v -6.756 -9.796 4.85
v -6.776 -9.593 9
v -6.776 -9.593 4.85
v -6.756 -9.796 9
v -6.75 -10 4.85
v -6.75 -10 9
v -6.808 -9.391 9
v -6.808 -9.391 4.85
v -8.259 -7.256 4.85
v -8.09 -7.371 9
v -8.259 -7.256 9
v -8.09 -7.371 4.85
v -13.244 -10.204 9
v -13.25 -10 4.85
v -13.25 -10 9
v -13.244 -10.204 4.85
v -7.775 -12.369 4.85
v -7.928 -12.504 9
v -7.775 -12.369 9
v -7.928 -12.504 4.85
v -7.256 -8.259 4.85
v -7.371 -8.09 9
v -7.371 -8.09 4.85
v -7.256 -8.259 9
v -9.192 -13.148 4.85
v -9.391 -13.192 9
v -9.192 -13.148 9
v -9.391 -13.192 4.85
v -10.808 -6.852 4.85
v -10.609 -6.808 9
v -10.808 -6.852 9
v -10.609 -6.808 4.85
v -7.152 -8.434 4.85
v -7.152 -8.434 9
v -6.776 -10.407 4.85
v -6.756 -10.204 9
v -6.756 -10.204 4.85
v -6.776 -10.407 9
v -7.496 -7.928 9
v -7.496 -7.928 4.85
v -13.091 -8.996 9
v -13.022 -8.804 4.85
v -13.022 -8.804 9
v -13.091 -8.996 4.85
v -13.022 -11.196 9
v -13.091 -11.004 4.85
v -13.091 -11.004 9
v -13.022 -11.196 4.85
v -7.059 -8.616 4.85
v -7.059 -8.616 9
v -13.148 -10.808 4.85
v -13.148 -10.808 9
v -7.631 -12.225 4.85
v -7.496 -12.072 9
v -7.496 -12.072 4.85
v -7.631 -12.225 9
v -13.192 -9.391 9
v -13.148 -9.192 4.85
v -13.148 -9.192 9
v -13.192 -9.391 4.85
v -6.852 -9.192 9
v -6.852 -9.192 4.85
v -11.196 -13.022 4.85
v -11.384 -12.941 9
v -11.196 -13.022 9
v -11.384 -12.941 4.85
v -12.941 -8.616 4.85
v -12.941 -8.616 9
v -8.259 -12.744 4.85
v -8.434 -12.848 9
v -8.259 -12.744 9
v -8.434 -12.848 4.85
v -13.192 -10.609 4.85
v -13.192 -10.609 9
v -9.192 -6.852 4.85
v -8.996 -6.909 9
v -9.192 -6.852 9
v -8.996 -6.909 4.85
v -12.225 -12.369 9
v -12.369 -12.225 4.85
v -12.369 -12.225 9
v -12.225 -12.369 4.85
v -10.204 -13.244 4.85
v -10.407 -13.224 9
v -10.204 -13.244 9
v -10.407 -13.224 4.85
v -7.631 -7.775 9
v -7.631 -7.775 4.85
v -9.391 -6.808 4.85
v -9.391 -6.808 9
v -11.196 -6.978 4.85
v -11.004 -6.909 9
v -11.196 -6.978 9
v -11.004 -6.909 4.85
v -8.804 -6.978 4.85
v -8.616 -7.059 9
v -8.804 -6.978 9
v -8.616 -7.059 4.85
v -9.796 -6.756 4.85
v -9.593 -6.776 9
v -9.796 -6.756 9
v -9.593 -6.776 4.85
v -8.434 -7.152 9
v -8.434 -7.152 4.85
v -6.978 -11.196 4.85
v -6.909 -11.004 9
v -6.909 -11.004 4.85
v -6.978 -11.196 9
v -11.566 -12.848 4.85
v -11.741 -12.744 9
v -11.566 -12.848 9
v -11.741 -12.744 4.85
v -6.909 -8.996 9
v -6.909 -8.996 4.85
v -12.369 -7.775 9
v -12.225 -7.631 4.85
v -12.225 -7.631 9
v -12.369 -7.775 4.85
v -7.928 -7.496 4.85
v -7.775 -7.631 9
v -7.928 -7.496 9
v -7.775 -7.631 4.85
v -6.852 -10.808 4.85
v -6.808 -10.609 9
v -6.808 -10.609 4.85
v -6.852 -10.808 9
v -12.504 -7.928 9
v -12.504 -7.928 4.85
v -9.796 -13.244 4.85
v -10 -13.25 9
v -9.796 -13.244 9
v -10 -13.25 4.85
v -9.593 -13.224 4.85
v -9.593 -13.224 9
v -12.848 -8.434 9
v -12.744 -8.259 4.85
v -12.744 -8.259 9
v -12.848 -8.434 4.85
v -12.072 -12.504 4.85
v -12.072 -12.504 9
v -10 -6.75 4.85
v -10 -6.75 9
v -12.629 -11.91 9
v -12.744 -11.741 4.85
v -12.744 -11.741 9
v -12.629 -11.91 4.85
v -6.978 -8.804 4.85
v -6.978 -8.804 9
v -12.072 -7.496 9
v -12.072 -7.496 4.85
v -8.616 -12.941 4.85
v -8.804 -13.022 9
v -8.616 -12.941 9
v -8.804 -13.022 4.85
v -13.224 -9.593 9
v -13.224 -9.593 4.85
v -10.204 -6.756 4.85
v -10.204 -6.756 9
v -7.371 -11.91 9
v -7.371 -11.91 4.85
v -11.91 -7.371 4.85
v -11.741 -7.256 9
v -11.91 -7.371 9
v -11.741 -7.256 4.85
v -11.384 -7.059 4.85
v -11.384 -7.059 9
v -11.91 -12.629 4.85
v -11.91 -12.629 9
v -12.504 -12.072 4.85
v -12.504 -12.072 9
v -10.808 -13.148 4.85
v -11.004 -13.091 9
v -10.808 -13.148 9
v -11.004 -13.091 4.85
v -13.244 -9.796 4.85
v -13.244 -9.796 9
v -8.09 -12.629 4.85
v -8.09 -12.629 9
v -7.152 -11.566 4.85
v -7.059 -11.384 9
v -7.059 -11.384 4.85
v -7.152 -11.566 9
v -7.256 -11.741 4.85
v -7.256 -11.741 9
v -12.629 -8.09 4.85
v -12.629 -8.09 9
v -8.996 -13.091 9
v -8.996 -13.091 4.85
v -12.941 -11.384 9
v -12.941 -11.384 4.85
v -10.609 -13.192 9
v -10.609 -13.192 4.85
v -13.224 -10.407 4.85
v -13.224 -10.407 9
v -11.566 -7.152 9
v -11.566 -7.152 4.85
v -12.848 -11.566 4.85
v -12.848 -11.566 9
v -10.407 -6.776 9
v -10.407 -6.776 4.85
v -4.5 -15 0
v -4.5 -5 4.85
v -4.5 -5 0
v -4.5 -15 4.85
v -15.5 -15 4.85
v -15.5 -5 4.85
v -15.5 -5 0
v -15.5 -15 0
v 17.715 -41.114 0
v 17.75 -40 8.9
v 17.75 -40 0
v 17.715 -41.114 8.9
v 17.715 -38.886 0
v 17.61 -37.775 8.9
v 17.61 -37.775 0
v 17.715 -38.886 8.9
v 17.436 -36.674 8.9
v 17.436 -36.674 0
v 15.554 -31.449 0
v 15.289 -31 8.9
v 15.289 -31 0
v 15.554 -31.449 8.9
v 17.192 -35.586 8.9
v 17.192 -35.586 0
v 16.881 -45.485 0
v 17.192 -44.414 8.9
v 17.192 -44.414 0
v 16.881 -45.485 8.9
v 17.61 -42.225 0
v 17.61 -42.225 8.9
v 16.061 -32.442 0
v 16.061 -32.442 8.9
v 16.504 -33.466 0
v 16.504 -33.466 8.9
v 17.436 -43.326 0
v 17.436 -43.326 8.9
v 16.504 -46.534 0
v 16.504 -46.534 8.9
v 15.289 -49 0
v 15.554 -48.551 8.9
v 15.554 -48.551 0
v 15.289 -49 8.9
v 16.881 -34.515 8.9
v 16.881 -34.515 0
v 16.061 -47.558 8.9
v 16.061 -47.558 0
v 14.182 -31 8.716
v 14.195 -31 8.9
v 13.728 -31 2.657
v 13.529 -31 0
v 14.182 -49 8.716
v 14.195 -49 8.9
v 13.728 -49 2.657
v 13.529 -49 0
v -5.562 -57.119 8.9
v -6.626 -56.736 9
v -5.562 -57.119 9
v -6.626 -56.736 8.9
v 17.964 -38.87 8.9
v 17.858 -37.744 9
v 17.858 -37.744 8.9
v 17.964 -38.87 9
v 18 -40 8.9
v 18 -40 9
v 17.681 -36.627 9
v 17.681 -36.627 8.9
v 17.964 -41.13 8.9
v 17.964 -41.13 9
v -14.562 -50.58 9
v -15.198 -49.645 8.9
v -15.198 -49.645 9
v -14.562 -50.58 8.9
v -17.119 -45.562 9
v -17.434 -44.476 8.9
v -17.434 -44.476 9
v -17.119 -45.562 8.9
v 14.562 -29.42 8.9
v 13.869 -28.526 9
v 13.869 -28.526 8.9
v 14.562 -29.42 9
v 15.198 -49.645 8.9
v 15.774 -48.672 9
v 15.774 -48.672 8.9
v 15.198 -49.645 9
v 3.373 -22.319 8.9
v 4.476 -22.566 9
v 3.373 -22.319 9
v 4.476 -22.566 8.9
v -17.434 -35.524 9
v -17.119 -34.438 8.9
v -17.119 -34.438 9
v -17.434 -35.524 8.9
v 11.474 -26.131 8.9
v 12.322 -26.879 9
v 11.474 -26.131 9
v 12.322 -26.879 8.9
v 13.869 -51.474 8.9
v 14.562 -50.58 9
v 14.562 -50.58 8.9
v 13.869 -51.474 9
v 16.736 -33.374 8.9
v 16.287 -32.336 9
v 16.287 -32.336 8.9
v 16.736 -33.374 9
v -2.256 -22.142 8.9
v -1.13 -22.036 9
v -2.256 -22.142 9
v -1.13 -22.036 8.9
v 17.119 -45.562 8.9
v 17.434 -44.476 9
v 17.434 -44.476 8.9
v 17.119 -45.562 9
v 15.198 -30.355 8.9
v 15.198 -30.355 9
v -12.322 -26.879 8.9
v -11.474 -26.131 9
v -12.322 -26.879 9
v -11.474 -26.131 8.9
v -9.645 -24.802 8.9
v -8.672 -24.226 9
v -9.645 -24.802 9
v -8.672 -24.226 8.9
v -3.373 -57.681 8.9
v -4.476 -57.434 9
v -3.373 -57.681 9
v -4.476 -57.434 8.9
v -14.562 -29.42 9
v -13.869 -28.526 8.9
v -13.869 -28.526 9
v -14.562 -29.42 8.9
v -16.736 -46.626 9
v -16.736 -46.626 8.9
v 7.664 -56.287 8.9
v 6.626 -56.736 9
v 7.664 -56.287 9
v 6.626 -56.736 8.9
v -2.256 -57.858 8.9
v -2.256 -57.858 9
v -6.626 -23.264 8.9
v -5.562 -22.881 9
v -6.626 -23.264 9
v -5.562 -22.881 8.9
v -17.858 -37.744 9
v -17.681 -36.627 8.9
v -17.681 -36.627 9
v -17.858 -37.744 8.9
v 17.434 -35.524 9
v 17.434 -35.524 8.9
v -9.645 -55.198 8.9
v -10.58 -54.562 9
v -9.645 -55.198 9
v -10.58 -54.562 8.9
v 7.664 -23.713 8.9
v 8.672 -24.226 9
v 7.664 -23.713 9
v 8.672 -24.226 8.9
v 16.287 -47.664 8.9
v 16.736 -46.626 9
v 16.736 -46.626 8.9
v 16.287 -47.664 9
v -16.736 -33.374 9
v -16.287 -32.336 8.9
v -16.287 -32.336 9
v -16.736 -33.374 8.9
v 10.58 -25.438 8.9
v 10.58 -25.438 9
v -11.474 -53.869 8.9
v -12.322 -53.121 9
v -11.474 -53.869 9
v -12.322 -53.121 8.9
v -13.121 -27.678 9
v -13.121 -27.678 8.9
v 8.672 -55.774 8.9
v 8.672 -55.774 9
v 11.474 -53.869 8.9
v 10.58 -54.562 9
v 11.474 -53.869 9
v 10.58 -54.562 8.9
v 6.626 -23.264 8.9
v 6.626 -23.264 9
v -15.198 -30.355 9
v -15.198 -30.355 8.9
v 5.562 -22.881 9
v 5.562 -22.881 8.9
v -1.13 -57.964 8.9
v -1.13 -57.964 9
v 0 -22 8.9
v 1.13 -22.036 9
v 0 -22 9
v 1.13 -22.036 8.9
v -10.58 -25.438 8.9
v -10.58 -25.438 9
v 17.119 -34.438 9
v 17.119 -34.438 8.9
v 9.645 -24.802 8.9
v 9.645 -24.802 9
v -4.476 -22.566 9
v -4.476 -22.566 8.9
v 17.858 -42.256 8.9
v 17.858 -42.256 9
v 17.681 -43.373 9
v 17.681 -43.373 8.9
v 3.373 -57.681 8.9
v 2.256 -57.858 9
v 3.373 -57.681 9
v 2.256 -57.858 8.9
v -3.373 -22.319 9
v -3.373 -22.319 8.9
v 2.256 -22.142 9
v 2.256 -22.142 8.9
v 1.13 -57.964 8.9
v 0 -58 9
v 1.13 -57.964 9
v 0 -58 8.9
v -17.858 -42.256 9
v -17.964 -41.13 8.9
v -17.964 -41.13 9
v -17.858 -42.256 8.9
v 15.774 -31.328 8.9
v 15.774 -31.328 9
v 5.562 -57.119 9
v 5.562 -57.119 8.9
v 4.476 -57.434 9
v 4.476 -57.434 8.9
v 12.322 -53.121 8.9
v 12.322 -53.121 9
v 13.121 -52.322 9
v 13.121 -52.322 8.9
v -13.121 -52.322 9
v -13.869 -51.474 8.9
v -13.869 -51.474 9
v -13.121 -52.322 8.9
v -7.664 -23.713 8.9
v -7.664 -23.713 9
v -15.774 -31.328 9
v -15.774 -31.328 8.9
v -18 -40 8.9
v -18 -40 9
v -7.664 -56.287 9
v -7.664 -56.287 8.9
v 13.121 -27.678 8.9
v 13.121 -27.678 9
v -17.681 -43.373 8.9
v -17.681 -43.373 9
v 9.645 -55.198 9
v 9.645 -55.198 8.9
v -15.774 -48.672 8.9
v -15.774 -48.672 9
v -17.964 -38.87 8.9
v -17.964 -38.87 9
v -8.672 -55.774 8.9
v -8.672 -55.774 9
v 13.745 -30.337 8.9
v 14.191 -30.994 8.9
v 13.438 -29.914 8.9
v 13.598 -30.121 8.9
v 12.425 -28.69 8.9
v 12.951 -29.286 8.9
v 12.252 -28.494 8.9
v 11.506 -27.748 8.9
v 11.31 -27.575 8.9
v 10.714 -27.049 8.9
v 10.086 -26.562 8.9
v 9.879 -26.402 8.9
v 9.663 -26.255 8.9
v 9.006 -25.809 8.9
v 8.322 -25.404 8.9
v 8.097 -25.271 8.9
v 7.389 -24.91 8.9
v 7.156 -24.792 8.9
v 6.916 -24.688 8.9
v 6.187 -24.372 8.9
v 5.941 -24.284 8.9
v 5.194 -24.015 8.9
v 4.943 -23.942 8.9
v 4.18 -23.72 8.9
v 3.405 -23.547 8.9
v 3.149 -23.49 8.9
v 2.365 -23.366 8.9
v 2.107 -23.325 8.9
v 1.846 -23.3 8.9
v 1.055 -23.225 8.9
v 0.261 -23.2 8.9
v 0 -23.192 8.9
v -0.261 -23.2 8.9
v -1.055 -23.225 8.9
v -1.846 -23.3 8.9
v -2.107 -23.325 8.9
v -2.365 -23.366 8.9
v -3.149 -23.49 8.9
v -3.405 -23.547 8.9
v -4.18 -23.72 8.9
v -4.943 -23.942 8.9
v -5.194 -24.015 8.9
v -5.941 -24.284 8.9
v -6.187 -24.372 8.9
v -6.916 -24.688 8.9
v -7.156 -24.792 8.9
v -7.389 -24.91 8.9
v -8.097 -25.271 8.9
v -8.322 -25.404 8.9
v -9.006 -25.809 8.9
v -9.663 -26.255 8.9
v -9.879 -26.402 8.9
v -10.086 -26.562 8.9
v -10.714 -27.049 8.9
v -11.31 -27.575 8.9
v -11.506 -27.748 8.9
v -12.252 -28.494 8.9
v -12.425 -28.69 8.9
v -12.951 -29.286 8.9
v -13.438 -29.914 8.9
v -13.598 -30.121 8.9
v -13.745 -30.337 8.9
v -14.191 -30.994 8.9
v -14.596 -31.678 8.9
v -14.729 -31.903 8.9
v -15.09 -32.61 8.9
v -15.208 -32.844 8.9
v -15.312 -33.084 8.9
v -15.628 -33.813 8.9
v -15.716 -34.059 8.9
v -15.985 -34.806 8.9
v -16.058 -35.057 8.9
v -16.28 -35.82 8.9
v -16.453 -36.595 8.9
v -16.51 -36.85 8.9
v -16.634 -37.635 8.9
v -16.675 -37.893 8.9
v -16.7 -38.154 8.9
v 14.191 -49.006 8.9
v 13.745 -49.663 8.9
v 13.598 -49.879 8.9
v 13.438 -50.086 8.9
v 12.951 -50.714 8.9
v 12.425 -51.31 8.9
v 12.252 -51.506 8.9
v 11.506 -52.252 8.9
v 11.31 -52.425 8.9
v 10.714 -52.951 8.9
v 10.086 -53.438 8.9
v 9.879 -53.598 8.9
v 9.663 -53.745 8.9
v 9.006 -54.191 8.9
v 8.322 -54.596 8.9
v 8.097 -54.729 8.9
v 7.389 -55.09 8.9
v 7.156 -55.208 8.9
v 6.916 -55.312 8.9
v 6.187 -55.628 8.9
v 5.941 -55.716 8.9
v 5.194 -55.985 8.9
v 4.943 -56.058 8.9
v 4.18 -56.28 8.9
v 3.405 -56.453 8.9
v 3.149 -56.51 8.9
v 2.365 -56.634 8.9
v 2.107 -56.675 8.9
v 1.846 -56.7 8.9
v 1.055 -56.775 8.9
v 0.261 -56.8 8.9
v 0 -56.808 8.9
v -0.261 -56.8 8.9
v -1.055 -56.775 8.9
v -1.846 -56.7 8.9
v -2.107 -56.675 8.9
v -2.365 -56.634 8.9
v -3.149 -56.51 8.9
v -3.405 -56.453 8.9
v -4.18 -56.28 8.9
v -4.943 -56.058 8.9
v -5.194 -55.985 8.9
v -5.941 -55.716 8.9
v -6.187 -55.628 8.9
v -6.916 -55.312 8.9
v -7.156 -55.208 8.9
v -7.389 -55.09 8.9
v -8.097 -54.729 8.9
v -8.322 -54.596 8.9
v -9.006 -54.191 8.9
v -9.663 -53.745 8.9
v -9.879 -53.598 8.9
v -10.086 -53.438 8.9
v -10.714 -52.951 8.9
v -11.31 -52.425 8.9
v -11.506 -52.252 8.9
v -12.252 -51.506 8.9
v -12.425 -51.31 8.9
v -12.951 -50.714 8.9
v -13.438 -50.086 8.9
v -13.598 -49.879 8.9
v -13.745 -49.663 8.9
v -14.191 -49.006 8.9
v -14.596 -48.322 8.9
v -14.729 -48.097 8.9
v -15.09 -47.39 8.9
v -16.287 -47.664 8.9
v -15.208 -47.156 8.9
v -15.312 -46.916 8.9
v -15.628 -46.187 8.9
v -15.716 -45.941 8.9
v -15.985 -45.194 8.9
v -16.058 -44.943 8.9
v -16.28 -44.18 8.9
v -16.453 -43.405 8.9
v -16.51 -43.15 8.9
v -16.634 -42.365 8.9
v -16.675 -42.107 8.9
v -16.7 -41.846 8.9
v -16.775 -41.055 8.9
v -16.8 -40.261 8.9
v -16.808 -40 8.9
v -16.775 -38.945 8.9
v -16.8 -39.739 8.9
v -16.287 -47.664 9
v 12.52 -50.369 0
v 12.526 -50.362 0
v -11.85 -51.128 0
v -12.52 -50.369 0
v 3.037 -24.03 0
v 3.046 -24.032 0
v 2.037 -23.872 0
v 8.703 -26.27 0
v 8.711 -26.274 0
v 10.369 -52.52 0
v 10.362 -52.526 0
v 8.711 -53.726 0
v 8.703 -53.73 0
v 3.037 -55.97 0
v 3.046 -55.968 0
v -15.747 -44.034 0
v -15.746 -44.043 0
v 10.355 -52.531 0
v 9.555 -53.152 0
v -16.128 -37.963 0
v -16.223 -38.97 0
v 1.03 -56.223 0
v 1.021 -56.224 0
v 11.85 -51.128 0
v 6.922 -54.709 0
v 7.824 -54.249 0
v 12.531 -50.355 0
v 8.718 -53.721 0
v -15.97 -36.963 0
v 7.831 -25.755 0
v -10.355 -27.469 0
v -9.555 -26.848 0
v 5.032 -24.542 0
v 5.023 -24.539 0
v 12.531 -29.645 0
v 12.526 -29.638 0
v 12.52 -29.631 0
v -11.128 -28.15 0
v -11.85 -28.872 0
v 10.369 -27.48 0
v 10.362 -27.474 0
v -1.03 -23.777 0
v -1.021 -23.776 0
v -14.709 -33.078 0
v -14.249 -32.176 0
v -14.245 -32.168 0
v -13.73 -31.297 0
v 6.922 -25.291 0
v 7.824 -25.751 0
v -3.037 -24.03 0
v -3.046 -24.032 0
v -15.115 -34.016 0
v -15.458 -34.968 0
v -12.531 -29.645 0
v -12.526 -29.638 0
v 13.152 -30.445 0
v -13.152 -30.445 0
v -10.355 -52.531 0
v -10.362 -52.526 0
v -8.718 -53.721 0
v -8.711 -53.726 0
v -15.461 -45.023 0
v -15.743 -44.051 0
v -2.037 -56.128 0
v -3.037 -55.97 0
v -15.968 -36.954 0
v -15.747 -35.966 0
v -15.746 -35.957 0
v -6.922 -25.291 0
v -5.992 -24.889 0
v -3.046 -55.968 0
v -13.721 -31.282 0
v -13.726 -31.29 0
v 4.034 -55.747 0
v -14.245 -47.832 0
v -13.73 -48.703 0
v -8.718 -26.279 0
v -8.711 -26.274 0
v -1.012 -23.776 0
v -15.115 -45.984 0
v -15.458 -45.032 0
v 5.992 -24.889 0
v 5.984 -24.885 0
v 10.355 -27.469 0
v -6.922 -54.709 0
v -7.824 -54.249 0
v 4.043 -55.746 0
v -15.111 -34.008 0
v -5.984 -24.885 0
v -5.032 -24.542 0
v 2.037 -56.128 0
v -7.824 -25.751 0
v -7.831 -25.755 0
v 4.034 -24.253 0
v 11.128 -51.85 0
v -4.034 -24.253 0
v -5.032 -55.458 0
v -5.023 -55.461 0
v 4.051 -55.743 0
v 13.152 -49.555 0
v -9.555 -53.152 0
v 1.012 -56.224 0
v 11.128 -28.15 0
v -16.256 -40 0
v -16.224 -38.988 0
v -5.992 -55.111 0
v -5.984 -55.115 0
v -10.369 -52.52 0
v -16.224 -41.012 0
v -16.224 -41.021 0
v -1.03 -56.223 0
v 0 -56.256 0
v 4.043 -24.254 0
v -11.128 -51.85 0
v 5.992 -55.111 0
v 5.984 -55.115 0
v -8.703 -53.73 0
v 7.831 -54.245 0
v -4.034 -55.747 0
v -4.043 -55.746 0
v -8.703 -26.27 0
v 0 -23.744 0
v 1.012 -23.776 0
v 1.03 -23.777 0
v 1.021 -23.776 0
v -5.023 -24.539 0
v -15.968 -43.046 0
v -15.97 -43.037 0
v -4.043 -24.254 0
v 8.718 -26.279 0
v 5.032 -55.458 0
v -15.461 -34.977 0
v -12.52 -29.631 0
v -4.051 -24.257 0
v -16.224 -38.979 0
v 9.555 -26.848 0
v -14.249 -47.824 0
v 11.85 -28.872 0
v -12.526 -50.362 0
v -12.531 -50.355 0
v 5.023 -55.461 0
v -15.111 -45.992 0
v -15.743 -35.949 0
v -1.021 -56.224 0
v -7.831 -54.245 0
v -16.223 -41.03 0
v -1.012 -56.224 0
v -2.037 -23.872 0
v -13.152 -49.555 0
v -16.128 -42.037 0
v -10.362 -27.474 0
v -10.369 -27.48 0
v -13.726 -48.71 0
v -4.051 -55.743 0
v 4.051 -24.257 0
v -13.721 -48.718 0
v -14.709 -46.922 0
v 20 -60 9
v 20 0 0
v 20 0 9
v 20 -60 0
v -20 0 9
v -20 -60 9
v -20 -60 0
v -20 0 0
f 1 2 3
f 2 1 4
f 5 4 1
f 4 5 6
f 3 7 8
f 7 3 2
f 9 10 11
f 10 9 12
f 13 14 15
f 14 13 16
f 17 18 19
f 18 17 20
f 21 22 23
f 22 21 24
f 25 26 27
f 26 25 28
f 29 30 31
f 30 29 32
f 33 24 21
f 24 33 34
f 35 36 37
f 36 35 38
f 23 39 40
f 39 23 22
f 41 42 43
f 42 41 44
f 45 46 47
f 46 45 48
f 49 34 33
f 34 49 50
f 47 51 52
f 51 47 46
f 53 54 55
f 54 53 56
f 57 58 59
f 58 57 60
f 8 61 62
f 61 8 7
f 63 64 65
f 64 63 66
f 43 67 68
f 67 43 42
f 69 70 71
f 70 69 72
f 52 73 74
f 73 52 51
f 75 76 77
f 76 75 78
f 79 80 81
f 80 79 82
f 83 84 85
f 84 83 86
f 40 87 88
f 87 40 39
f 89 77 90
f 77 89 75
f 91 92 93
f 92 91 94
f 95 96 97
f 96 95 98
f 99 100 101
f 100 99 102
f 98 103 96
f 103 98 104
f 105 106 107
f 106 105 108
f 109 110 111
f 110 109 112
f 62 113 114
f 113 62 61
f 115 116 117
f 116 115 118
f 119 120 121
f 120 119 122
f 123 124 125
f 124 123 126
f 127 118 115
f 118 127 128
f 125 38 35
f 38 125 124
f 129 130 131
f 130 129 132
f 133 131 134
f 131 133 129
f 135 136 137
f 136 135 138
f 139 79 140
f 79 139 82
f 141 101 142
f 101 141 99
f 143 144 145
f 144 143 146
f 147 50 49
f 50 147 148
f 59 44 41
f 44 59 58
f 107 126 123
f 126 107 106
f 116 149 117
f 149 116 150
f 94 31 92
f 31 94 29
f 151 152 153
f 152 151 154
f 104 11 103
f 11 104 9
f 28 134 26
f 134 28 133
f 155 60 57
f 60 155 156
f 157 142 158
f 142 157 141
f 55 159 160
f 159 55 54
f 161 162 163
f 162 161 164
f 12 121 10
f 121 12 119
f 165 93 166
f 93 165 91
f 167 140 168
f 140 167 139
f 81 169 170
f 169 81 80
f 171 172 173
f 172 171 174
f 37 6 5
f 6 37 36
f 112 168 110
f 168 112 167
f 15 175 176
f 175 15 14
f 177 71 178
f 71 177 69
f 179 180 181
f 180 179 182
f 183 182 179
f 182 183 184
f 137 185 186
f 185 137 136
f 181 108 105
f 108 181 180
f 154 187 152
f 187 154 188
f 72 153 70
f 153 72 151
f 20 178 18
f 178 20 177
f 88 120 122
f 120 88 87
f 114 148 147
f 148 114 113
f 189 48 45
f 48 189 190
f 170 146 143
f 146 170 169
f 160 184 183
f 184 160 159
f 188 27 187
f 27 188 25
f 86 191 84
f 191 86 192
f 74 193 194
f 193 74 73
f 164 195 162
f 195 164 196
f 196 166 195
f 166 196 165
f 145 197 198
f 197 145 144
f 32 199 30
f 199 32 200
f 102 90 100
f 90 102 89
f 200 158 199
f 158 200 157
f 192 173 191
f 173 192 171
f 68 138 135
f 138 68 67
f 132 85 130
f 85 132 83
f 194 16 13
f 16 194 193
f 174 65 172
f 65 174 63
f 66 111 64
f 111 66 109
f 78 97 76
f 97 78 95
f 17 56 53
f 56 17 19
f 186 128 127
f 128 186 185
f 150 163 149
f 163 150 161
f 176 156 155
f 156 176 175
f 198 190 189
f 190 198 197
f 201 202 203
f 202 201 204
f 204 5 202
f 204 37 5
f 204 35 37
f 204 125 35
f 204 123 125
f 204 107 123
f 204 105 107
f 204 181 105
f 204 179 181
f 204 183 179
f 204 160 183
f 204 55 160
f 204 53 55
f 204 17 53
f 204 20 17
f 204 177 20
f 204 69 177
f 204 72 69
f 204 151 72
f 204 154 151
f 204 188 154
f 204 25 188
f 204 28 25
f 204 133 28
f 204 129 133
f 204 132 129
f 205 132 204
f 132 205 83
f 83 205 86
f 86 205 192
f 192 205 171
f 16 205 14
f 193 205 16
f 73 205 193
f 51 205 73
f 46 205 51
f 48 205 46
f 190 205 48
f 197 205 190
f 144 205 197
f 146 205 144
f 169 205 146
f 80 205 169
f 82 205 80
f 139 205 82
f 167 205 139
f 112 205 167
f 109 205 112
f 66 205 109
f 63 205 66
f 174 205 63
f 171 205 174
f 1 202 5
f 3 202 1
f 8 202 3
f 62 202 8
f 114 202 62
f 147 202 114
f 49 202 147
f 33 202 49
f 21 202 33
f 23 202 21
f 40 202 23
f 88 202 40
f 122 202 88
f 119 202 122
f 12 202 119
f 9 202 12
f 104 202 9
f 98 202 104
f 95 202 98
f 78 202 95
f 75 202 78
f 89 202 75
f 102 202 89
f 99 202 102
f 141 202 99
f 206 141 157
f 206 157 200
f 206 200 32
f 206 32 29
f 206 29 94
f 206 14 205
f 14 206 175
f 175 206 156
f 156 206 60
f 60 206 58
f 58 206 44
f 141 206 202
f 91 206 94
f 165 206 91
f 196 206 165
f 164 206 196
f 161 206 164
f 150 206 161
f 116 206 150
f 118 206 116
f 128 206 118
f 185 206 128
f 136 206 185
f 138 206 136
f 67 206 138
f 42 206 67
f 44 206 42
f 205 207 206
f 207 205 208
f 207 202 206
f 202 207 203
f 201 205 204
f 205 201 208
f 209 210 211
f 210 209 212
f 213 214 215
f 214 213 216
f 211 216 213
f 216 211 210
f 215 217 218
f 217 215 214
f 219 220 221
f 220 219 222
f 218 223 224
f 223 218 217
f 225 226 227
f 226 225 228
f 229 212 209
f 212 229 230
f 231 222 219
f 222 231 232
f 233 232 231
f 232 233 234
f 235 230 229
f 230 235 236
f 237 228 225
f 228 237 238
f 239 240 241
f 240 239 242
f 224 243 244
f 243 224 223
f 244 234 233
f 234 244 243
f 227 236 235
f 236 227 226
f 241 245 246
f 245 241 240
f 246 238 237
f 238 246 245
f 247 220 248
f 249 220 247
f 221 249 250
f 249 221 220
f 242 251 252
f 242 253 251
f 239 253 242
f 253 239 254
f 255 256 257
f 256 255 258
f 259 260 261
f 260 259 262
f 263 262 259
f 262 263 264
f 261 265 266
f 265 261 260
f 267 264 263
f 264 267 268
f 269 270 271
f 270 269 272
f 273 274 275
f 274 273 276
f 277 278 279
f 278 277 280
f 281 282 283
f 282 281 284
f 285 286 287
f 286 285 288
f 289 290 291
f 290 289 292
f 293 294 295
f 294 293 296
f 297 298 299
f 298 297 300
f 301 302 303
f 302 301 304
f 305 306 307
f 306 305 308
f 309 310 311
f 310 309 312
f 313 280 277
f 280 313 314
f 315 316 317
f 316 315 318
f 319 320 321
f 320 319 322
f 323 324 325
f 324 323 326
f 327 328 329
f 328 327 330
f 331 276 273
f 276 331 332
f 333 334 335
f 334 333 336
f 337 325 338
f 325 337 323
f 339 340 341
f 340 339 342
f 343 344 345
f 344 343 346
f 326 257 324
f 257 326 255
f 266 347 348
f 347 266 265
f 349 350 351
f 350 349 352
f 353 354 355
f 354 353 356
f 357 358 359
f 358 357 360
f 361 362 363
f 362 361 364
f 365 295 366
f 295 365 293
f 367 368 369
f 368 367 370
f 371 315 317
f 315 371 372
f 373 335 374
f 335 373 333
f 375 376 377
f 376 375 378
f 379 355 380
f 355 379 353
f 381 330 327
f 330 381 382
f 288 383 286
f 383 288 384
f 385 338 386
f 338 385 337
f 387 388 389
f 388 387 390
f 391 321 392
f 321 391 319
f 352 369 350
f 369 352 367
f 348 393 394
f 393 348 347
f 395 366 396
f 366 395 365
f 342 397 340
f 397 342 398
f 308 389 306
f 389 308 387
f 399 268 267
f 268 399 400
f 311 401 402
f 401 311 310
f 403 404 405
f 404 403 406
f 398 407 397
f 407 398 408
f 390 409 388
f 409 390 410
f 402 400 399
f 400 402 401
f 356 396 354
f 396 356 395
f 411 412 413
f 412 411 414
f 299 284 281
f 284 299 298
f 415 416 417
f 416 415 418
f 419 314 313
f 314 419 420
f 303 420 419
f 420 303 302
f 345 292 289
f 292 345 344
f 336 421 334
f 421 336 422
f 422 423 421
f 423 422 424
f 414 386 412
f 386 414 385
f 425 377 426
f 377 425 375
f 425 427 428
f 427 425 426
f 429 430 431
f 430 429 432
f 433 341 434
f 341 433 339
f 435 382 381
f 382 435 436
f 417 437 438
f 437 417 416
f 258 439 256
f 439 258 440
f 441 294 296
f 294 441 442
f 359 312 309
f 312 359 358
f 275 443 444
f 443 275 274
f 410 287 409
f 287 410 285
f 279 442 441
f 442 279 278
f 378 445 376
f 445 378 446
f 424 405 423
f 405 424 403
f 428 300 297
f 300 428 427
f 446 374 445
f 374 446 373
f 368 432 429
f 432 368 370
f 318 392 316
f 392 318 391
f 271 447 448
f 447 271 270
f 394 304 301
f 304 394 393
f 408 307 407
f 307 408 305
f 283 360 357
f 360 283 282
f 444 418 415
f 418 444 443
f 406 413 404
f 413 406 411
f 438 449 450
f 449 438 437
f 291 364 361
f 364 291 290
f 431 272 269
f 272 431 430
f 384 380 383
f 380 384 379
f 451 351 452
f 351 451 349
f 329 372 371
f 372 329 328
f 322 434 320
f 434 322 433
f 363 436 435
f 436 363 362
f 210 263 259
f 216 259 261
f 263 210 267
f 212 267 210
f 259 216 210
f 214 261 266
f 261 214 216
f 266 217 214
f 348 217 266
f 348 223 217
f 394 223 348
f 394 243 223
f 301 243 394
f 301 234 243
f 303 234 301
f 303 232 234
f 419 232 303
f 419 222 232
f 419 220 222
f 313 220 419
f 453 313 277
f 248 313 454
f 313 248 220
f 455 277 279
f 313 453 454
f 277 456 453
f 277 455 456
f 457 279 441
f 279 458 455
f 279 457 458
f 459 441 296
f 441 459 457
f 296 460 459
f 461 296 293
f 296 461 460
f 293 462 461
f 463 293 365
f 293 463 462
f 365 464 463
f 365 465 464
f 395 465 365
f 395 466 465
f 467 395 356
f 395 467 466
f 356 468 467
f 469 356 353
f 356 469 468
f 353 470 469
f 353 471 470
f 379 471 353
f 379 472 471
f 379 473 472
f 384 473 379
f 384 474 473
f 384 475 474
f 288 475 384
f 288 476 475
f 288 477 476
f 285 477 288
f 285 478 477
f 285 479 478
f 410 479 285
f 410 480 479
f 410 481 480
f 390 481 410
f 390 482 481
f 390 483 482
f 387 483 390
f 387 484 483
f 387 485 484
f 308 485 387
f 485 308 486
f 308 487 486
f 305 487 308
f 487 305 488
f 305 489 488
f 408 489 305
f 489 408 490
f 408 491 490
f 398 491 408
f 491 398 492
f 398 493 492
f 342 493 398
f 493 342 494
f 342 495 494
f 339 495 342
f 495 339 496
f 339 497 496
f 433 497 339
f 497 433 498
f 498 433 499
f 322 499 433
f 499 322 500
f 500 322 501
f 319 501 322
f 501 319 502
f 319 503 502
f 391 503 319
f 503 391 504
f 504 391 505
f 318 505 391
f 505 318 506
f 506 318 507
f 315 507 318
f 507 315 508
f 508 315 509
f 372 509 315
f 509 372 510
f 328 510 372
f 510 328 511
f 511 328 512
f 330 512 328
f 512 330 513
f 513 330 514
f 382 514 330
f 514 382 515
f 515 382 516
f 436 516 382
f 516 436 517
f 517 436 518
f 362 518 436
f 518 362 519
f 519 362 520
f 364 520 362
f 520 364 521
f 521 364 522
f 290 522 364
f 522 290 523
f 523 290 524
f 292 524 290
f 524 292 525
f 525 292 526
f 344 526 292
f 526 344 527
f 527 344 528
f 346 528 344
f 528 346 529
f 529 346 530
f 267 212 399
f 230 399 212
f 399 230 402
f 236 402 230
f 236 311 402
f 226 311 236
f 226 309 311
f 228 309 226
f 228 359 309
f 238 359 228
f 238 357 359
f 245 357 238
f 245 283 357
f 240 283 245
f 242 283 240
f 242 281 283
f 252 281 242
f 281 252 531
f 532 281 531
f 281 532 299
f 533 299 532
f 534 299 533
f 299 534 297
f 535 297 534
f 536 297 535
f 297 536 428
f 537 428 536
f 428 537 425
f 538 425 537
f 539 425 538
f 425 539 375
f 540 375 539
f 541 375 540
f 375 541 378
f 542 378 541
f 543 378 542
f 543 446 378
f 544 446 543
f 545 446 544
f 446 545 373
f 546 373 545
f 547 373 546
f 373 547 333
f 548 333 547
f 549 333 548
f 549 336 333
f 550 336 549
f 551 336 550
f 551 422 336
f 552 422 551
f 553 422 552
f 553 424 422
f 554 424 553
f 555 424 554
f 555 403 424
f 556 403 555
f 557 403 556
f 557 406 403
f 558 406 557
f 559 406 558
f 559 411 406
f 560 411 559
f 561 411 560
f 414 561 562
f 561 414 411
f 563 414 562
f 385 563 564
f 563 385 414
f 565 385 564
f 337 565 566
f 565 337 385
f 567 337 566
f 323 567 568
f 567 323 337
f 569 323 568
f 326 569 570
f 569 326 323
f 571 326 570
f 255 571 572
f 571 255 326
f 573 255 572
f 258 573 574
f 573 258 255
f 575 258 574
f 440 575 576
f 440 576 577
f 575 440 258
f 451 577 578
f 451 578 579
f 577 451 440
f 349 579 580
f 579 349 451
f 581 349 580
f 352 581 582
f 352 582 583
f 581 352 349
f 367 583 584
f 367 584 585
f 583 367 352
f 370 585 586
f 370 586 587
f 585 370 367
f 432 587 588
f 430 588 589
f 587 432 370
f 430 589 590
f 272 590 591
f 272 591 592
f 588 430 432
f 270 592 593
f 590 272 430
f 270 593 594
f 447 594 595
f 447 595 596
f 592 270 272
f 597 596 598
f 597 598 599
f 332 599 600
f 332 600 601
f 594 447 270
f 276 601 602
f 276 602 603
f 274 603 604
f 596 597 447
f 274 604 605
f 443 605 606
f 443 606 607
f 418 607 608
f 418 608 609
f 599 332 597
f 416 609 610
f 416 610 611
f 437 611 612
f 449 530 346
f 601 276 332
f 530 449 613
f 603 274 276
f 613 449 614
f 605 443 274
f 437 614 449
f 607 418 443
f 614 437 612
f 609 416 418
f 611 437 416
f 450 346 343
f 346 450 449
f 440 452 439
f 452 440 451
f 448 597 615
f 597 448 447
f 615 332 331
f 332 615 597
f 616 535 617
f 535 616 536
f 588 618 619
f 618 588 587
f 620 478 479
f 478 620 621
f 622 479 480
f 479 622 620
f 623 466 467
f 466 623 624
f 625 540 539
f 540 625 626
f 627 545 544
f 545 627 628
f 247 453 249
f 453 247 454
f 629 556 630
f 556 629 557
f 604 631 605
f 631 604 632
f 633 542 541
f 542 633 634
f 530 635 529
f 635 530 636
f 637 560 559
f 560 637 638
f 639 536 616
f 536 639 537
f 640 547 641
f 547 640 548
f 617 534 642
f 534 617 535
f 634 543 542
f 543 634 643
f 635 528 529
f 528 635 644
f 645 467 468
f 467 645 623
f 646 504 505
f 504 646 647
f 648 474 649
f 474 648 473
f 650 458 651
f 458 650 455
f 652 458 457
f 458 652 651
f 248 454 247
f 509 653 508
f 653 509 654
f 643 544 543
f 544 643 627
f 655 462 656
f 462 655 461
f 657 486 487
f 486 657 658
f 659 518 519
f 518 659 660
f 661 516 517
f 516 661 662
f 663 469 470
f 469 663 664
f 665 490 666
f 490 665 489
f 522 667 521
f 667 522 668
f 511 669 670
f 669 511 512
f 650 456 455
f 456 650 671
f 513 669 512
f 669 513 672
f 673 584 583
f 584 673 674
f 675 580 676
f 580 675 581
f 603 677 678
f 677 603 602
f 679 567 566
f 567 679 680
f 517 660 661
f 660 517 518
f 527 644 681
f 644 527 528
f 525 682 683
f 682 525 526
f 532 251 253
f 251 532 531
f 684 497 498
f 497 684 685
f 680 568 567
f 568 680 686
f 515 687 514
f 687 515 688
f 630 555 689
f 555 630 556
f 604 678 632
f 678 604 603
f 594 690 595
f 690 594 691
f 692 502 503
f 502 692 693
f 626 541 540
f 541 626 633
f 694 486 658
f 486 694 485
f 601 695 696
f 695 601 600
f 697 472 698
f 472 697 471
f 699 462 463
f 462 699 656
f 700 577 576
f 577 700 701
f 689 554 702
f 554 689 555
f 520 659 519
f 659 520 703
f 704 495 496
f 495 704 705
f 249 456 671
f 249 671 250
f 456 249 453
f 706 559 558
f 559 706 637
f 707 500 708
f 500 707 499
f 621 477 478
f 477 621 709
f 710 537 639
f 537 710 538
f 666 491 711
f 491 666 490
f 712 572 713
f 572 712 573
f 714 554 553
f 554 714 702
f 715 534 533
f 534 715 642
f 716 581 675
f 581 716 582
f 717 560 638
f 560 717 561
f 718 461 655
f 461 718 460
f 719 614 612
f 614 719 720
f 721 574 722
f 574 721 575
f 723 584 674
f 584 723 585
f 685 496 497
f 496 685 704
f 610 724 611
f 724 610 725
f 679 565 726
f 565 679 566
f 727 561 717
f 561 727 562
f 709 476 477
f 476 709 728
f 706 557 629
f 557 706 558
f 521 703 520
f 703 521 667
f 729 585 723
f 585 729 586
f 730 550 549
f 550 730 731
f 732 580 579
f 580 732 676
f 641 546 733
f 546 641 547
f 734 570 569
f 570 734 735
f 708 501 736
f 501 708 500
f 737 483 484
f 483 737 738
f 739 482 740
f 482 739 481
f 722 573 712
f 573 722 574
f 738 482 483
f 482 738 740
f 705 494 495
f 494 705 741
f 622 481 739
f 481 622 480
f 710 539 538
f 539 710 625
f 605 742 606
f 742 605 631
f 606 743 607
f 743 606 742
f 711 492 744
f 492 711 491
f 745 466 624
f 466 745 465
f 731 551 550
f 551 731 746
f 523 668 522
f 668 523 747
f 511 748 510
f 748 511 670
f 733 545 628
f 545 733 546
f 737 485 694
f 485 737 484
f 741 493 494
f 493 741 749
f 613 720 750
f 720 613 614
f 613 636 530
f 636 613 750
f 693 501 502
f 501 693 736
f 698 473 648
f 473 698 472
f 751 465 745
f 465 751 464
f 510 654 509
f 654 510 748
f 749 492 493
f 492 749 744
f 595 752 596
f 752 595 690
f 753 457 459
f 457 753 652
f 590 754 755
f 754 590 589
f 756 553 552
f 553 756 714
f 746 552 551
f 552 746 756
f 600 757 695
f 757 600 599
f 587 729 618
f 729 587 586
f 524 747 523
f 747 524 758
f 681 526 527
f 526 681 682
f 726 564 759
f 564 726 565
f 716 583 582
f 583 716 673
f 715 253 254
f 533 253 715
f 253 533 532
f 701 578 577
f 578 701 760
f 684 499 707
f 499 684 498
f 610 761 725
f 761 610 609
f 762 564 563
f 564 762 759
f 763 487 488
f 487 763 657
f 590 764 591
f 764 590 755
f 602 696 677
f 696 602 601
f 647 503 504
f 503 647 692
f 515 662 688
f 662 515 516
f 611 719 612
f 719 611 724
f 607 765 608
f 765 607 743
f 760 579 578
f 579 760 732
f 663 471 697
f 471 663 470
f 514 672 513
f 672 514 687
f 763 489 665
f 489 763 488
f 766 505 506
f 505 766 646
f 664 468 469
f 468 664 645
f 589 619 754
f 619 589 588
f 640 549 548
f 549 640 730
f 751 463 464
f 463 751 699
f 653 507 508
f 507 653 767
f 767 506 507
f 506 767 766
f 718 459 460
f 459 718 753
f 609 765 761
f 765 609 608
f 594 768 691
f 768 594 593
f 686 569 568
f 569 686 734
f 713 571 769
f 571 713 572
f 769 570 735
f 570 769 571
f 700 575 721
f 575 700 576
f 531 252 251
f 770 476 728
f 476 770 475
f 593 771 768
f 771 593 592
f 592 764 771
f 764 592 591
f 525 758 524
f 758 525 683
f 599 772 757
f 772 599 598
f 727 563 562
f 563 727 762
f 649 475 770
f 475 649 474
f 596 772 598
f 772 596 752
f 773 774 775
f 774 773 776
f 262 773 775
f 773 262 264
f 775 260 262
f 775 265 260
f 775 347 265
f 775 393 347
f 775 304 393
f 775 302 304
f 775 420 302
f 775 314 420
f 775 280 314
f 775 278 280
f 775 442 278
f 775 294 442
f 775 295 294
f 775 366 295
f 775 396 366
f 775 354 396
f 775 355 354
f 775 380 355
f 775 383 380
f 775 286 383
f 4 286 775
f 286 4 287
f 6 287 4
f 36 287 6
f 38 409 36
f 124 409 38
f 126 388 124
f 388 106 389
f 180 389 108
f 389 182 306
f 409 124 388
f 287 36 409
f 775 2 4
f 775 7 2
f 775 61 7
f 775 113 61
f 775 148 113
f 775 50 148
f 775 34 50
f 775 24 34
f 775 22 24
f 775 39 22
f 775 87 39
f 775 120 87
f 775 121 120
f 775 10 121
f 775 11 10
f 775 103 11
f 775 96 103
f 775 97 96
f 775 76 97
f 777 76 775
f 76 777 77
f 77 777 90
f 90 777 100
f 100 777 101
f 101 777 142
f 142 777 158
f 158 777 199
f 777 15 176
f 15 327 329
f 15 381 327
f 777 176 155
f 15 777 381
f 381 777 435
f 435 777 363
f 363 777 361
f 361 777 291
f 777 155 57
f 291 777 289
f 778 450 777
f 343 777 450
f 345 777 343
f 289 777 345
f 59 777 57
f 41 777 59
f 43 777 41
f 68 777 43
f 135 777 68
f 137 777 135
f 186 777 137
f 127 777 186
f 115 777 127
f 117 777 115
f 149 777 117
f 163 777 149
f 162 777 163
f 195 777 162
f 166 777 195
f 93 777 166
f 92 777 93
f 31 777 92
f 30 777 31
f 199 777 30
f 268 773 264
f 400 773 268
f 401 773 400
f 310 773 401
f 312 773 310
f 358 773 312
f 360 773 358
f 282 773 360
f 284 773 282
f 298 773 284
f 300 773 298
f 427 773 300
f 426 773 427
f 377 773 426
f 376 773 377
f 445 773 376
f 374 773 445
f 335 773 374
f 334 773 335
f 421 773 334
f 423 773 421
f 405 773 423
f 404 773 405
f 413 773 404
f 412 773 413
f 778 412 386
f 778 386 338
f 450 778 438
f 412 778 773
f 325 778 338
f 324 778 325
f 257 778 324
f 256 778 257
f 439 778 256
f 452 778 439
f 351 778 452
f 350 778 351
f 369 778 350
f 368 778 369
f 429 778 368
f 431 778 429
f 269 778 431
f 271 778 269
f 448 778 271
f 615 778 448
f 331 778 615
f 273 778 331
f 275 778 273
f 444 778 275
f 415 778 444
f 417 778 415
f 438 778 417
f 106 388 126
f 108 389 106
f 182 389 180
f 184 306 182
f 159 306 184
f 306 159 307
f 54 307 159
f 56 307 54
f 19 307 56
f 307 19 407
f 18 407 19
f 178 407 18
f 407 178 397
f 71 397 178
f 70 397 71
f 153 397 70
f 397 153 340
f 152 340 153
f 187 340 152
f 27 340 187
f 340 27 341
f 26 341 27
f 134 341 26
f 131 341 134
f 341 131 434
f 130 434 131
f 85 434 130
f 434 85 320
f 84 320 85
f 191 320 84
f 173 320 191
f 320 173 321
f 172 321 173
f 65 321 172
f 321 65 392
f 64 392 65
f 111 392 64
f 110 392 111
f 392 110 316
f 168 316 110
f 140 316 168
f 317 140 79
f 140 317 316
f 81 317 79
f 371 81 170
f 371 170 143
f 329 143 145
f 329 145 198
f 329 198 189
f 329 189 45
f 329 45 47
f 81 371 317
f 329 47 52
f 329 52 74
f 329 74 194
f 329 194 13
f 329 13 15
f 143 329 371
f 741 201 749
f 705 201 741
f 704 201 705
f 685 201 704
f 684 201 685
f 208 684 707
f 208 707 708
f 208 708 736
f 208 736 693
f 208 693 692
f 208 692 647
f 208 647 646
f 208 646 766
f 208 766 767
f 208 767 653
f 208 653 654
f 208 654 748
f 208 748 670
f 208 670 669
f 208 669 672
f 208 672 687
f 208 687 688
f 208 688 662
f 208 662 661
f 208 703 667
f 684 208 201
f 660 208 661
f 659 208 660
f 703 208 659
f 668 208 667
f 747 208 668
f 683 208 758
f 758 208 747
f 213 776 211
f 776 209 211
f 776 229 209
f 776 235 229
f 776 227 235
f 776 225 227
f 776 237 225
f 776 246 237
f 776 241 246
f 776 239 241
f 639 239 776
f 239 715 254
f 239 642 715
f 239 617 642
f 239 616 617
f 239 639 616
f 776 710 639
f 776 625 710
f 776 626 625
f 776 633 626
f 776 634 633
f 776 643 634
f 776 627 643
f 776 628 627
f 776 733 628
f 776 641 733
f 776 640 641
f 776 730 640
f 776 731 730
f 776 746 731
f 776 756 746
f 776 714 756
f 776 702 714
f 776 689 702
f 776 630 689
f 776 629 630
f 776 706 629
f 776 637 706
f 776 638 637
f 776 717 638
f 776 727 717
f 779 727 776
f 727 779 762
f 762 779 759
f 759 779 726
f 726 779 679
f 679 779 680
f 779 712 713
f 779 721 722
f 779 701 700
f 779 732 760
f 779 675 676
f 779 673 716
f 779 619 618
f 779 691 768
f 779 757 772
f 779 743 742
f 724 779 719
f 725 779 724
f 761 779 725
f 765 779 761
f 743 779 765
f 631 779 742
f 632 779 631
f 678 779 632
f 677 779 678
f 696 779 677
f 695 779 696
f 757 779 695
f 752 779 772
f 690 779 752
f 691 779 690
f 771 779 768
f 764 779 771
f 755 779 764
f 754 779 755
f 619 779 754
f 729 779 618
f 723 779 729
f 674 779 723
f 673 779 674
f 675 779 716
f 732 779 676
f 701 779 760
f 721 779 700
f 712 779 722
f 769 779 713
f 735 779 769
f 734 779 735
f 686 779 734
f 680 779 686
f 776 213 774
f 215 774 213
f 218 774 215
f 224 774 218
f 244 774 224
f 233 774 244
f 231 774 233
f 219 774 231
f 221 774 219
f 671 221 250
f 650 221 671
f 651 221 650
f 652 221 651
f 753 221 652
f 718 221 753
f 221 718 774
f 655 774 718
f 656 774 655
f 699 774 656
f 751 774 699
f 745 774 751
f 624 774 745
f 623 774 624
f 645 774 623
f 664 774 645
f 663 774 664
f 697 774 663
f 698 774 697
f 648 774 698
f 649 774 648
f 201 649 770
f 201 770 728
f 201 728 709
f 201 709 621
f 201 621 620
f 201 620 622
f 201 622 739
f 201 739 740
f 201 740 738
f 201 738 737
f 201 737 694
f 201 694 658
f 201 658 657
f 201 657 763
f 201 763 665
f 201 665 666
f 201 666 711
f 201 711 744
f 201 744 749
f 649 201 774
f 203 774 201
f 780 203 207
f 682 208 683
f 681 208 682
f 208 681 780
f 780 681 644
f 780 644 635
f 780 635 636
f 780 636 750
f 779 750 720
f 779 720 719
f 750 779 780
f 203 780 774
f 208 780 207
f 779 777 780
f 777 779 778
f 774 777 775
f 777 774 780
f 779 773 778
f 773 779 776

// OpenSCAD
$fn=100;
baseH = 32;
baseW = 165 ;
baseD = 116.5 ;

innerH = 44 ;
innerW = 155 ;
innerD = 104 ;

ringW = 7.3 ;
ringH = 3 ;

xOff = (baseW - innerW) /2 ;
yOff = (baseD - innerD) /2 ;
zOff = 6 ;

module lid(){
    translate([0,0,ringH]) difference(){
        cube([baseW,baseD,baseH]);
        translate([xOff,yOff,zOff]) cube([innerW,innerD,innerH]);
    }
    translate ([ringW,ringW,0]) cube([baseW-2*(ringW),baseD-2*(ringW),ringH]);
}


module pot(text) {
    x=11;y=10;z=5;
    cylD=6.5;cylH=17;
    zWiggle=.1;
    translate([0,0,z/2-zWiggle]) cube([x,y,z+zWiggle],center=true);
    translate([0,0,z]) {
        translate([0,0,-zWiggle]) cylinder(h=cylH+zWiggle,d=cylD);
        translate([0,0,5]) cylinder(h=1,d=9);
    }
}

module speaker() {
    zWiggle = .1 ;
    outerD  = 36  ; innerD1 = 32.5 ; innerD2 = 34 ;
    outerH  = 3     ; innerH = 12 ;
    connectorD = 35.5 ;
    translate([0,0,9]) cylinder(h=outerH,d=outerD);
    cylinder(h=innerH + zWiggle, d1=innerD1, d2=innerD2);
    intersection() {
        color([1,1,1]) cylinder(h=innerH,d=connectorD);
        translate([0,-outerD/4,0]) cube([outerD,outerD/2,innerH]);
    }
}

//tests
difference() {
    zWiggle = .1 ;
    translate ([-20,-60,0]) cube([40,60,zOff+ringH]);
    translate([0,0,-zWiggle]) union(){
        translate ([-10,-10,0]) pot();
        translate ([0,-40,0]) speaker();
    }
}

//normal print
*difference() {
    zWiggle=.1;
    lid();
    //pot 1
    translate([20,baseD/2,0]) pot("pot 1");
    //pot 2
    translate([50,baseD/2,0]) pot("pot 2");
    //speaker
    translate([100,baseD/2,-zWiggle -2]) speaker();
 
}
